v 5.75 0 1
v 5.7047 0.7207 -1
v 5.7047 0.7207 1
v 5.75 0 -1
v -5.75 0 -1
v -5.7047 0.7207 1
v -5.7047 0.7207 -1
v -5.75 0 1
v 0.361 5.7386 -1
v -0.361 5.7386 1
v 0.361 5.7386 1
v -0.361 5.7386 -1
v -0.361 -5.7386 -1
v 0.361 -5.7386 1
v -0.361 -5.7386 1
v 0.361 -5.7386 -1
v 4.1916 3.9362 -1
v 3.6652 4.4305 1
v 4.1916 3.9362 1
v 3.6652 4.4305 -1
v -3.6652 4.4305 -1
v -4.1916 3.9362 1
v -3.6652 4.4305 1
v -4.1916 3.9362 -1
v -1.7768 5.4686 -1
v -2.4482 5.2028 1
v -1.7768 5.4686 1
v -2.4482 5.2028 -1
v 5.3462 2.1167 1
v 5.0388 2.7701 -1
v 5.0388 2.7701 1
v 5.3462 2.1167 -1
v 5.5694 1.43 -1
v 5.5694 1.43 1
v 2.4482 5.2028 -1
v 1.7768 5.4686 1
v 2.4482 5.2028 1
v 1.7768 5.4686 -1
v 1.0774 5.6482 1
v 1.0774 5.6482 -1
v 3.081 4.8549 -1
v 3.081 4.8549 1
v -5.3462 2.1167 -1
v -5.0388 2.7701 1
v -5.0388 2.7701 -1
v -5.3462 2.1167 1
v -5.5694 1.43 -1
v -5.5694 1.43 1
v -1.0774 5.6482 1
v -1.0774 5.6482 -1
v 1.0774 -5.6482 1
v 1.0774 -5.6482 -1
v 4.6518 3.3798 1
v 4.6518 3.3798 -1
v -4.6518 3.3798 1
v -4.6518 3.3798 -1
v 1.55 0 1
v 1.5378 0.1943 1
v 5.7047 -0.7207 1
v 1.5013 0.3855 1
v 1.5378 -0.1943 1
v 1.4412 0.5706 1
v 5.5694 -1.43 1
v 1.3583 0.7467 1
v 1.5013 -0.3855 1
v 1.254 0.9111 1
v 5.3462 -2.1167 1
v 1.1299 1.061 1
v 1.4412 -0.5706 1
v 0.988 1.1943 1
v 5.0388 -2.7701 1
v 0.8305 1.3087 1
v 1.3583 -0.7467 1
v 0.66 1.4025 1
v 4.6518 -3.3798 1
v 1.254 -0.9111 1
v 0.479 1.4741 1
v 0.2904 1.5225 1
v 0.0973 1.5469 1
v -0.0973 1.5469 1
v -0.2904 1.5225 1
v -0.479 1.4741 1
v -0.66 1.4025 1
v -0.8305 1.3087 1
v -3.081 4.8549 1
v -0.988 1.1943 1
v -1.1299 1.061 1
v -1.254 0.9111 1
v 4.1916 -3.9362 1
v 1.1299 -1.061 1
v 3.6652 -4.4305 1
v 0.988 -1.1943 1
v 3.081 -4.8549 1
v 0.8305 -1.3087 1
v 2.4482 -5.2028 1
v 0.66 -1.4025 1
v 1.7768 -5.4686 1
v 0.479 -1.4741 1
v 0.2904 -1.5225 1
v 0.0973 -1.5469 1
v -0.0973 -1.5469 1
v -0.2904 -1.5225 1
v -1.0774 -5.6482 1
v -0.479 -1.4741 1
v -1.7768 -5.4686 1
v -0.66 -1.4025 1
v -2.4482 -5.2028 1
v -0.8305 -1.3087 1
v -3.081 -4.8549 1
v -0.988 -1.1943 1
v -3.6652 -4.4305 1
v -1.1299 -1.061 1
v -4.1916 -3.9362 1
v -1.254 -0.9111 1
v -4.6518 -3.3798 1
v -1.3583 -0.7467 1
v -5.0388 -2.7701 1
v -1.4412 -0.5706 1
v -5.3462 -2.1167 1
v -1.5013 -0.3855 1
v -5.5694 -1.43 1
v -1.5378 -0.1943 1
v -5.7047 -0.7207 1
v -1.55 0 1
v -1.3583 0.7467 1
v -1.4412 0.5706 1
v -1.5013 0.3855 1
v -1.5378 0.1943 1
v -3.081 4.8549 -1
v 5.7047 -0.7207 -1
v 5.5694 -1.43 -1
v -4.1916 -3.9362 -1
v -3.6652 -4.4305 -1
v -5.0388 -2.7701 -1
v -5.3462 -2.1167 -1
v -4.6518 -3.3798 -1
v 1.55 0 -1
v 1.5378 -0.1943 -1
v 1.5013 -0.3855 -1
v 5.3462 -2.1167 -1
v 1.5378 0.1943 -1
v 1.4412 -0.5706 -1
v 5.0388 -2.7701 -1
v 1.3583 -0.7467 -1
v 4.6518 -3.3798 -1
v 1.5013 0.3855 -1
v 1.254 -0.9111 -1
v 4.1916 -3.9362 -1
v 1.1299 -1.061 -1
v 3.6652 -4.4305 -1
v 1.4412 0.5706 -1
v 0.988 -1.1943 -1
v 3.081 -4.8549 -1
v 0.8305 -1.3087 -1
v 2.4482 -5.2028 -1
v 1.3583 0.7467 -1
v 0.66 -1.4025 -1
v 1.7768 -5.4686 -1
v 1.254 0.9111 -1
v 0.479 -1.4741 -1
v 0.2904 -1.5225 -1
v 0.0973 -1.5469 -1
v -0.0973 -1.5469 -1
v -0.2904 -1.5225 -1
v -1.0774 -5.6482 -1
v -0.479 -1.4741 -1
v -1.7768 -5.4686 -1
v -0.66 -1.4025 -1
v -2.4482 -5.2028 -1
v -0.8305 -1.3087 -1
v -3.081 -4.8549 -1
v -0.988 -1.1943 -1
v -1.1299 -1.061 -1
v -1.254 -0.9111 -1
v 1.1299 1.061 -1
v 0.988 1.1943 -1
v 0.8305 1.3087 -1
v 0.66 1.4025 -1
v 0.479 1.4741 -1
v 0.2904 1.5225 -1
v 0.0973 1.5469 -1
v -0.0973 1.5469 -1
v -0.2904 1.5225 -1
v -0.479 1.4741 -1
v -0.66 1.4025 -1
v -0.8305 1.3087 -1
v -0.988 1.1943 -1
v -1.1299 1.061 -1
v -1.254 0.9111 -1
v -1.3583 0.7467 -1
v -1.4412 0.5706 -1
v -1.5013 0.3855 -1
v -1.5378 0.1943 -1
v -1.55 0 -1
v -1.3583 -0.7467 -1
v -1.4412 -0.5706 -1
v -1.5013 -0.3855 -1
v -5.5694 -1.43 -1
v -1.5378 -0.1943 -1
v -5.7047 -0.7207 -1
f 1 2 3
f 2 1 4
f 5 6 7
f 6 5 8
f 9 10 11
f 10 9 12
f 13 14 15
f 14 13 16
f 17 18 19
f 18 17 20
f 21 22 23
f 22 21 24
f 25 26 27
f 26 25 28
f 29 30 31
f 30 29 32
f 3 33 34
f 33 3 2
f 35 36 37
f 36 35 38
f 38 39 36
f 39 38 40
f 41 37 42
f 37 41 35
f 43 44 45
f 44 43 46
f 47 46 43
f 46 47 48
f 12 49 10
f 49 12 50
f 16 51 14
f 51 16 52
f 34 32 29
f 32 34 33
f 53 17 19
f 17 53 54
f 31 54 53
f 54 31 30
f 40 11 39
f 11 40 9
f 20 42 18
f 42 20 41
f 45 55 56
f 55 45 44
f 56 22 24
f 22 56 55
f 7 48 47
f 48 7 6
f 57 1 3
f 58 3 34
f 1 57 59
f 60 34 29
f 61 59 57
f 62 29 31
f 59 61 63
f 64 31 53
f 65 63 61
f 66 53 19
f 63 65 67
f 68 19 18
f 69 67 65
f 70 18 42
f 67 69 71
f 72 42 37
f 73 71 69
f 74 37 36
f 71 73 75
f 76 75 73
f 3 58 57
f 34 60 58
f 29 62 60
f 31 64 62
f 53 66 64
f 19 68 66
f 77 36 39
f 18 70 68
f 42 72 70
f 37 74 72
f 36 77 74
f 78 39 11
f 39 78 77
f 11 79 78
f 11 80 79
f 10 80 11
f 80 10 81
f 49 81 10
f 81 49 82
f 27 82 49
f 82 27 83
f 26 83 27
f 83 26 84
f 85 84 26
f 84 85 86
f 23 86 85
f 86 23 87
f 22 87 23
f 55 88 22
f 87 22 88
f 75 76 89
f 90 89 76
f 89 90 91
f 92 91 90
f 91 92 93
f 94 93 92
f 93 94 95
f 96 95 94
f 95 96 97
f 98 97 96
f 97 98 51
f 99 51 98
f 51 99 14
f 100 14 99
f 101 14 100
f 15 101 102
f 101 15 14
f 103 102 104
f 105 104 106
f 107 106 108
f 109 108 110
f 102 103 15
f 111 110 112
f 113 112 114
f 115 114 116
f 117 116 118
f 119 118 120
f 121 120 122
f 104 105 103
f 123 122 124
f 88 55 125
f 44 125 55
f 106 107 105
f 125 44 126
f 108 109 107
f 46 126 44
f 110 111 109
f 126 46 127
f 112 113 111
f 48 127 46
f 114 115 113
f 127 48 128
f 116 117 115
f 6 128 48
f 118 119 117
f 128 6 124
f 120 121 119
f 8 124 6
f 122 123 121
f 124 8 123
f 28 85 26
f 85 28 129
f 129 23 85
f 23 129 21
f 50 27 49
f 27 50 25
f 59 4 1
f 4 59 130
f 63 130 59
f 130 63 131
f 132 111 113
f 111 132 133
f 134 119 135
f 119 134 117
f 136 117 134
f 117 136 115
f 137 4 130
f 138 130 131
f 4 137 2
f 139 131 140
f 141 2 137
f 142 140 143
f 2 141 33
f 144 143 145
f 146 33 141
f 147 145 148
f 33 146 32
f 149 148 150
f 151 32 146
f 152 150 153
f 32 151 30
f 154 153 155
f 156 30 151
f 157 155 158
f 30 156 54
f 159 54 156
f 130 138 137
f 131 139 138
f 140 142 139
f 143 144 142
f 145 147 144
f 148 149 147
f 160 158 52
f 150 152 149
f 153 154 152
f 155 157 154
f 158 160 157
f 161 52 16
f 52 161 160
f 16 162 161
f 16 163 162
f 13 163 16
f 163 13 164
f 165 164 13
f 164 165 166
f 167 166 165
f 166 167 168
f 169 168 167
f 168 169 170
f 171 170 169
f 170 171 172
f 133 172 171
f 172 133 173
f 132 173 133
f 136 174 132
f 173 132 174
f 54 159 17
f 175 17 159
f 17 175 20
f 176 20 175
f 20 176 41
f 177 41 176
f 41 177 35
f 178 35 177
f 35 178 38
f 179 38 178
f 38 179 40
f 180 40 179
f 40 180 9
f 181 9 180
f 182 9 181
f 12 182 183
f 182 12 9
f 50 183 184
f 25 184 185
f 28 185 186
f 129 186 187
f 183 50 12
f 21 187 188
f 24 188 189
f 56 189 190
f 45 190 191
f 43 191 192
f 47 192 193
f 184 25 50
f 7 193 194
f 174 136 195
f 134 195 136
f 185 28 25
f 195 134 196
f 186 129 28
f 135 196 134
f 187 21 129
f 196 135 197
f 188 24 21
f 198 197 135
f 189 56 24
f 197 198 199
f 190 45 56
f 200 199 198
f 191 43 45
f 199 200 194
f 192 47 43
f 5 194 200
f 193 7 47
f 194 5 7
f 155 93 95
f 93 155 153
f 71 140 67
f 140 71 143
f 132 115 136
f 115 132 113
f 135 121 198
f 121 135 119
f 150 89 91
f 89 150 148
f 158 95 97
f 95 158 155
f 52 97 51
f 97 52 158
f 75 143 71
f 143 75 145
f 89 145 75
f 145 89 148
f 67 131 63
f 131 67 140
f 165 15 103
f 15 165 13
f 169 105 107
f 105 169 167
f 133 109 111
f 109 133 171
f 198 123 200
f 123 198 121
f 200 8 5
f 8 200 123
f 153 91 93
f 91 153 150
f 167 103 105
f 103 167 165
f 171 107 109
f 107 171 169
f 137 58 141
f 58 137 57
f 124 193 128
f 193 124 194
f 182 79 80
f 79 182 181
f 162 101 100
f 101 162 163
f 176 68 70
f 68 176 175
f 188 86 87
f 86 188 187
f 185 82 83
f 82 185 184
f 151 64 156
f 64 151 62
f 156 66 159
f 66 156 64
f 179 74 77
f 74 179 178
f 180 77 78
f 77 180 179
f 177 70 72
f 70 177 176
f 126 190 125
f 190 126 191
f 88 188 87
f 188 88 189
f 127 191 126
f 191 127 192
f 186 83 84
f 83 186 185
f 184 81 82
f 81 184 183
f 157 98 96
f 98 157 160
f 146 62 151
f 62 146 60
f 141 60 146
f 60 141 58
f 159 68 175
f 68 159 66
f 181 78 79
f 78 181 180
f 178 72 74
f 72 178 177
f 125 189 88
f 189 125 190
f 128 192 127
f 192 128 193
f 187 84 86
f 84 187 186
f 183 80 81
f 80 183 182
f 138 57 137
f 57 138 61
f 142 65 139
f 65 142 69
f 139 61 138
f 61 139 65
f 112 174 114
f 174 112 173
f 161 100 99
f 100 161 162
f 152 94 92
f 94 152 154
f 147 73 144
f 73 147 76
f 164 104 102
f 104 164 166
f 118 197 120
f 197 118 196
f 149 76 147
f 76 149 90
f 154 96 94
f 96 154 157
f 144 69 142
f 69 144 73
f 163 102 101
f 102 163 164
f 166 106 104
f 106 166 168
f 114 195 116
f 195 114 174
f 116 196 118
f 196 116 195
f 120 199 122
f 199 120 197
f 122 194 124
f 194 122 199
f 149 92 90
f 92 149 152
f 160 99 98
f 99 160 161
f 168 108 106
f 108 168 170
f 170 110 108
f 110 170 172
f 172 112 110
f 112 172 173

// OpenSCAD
$fn = 50;


difference() {
	union() {
		translate(v = [0, 0, -1.0000000000]) {
			cylinder(h = 2, r = 5.7500000000);
		}
	}
	union() {
		translate(v = [0, 0, -100.0000000000]) {
			cylinder(h = 200, r = 1.5500000000);
		}
	}
}
